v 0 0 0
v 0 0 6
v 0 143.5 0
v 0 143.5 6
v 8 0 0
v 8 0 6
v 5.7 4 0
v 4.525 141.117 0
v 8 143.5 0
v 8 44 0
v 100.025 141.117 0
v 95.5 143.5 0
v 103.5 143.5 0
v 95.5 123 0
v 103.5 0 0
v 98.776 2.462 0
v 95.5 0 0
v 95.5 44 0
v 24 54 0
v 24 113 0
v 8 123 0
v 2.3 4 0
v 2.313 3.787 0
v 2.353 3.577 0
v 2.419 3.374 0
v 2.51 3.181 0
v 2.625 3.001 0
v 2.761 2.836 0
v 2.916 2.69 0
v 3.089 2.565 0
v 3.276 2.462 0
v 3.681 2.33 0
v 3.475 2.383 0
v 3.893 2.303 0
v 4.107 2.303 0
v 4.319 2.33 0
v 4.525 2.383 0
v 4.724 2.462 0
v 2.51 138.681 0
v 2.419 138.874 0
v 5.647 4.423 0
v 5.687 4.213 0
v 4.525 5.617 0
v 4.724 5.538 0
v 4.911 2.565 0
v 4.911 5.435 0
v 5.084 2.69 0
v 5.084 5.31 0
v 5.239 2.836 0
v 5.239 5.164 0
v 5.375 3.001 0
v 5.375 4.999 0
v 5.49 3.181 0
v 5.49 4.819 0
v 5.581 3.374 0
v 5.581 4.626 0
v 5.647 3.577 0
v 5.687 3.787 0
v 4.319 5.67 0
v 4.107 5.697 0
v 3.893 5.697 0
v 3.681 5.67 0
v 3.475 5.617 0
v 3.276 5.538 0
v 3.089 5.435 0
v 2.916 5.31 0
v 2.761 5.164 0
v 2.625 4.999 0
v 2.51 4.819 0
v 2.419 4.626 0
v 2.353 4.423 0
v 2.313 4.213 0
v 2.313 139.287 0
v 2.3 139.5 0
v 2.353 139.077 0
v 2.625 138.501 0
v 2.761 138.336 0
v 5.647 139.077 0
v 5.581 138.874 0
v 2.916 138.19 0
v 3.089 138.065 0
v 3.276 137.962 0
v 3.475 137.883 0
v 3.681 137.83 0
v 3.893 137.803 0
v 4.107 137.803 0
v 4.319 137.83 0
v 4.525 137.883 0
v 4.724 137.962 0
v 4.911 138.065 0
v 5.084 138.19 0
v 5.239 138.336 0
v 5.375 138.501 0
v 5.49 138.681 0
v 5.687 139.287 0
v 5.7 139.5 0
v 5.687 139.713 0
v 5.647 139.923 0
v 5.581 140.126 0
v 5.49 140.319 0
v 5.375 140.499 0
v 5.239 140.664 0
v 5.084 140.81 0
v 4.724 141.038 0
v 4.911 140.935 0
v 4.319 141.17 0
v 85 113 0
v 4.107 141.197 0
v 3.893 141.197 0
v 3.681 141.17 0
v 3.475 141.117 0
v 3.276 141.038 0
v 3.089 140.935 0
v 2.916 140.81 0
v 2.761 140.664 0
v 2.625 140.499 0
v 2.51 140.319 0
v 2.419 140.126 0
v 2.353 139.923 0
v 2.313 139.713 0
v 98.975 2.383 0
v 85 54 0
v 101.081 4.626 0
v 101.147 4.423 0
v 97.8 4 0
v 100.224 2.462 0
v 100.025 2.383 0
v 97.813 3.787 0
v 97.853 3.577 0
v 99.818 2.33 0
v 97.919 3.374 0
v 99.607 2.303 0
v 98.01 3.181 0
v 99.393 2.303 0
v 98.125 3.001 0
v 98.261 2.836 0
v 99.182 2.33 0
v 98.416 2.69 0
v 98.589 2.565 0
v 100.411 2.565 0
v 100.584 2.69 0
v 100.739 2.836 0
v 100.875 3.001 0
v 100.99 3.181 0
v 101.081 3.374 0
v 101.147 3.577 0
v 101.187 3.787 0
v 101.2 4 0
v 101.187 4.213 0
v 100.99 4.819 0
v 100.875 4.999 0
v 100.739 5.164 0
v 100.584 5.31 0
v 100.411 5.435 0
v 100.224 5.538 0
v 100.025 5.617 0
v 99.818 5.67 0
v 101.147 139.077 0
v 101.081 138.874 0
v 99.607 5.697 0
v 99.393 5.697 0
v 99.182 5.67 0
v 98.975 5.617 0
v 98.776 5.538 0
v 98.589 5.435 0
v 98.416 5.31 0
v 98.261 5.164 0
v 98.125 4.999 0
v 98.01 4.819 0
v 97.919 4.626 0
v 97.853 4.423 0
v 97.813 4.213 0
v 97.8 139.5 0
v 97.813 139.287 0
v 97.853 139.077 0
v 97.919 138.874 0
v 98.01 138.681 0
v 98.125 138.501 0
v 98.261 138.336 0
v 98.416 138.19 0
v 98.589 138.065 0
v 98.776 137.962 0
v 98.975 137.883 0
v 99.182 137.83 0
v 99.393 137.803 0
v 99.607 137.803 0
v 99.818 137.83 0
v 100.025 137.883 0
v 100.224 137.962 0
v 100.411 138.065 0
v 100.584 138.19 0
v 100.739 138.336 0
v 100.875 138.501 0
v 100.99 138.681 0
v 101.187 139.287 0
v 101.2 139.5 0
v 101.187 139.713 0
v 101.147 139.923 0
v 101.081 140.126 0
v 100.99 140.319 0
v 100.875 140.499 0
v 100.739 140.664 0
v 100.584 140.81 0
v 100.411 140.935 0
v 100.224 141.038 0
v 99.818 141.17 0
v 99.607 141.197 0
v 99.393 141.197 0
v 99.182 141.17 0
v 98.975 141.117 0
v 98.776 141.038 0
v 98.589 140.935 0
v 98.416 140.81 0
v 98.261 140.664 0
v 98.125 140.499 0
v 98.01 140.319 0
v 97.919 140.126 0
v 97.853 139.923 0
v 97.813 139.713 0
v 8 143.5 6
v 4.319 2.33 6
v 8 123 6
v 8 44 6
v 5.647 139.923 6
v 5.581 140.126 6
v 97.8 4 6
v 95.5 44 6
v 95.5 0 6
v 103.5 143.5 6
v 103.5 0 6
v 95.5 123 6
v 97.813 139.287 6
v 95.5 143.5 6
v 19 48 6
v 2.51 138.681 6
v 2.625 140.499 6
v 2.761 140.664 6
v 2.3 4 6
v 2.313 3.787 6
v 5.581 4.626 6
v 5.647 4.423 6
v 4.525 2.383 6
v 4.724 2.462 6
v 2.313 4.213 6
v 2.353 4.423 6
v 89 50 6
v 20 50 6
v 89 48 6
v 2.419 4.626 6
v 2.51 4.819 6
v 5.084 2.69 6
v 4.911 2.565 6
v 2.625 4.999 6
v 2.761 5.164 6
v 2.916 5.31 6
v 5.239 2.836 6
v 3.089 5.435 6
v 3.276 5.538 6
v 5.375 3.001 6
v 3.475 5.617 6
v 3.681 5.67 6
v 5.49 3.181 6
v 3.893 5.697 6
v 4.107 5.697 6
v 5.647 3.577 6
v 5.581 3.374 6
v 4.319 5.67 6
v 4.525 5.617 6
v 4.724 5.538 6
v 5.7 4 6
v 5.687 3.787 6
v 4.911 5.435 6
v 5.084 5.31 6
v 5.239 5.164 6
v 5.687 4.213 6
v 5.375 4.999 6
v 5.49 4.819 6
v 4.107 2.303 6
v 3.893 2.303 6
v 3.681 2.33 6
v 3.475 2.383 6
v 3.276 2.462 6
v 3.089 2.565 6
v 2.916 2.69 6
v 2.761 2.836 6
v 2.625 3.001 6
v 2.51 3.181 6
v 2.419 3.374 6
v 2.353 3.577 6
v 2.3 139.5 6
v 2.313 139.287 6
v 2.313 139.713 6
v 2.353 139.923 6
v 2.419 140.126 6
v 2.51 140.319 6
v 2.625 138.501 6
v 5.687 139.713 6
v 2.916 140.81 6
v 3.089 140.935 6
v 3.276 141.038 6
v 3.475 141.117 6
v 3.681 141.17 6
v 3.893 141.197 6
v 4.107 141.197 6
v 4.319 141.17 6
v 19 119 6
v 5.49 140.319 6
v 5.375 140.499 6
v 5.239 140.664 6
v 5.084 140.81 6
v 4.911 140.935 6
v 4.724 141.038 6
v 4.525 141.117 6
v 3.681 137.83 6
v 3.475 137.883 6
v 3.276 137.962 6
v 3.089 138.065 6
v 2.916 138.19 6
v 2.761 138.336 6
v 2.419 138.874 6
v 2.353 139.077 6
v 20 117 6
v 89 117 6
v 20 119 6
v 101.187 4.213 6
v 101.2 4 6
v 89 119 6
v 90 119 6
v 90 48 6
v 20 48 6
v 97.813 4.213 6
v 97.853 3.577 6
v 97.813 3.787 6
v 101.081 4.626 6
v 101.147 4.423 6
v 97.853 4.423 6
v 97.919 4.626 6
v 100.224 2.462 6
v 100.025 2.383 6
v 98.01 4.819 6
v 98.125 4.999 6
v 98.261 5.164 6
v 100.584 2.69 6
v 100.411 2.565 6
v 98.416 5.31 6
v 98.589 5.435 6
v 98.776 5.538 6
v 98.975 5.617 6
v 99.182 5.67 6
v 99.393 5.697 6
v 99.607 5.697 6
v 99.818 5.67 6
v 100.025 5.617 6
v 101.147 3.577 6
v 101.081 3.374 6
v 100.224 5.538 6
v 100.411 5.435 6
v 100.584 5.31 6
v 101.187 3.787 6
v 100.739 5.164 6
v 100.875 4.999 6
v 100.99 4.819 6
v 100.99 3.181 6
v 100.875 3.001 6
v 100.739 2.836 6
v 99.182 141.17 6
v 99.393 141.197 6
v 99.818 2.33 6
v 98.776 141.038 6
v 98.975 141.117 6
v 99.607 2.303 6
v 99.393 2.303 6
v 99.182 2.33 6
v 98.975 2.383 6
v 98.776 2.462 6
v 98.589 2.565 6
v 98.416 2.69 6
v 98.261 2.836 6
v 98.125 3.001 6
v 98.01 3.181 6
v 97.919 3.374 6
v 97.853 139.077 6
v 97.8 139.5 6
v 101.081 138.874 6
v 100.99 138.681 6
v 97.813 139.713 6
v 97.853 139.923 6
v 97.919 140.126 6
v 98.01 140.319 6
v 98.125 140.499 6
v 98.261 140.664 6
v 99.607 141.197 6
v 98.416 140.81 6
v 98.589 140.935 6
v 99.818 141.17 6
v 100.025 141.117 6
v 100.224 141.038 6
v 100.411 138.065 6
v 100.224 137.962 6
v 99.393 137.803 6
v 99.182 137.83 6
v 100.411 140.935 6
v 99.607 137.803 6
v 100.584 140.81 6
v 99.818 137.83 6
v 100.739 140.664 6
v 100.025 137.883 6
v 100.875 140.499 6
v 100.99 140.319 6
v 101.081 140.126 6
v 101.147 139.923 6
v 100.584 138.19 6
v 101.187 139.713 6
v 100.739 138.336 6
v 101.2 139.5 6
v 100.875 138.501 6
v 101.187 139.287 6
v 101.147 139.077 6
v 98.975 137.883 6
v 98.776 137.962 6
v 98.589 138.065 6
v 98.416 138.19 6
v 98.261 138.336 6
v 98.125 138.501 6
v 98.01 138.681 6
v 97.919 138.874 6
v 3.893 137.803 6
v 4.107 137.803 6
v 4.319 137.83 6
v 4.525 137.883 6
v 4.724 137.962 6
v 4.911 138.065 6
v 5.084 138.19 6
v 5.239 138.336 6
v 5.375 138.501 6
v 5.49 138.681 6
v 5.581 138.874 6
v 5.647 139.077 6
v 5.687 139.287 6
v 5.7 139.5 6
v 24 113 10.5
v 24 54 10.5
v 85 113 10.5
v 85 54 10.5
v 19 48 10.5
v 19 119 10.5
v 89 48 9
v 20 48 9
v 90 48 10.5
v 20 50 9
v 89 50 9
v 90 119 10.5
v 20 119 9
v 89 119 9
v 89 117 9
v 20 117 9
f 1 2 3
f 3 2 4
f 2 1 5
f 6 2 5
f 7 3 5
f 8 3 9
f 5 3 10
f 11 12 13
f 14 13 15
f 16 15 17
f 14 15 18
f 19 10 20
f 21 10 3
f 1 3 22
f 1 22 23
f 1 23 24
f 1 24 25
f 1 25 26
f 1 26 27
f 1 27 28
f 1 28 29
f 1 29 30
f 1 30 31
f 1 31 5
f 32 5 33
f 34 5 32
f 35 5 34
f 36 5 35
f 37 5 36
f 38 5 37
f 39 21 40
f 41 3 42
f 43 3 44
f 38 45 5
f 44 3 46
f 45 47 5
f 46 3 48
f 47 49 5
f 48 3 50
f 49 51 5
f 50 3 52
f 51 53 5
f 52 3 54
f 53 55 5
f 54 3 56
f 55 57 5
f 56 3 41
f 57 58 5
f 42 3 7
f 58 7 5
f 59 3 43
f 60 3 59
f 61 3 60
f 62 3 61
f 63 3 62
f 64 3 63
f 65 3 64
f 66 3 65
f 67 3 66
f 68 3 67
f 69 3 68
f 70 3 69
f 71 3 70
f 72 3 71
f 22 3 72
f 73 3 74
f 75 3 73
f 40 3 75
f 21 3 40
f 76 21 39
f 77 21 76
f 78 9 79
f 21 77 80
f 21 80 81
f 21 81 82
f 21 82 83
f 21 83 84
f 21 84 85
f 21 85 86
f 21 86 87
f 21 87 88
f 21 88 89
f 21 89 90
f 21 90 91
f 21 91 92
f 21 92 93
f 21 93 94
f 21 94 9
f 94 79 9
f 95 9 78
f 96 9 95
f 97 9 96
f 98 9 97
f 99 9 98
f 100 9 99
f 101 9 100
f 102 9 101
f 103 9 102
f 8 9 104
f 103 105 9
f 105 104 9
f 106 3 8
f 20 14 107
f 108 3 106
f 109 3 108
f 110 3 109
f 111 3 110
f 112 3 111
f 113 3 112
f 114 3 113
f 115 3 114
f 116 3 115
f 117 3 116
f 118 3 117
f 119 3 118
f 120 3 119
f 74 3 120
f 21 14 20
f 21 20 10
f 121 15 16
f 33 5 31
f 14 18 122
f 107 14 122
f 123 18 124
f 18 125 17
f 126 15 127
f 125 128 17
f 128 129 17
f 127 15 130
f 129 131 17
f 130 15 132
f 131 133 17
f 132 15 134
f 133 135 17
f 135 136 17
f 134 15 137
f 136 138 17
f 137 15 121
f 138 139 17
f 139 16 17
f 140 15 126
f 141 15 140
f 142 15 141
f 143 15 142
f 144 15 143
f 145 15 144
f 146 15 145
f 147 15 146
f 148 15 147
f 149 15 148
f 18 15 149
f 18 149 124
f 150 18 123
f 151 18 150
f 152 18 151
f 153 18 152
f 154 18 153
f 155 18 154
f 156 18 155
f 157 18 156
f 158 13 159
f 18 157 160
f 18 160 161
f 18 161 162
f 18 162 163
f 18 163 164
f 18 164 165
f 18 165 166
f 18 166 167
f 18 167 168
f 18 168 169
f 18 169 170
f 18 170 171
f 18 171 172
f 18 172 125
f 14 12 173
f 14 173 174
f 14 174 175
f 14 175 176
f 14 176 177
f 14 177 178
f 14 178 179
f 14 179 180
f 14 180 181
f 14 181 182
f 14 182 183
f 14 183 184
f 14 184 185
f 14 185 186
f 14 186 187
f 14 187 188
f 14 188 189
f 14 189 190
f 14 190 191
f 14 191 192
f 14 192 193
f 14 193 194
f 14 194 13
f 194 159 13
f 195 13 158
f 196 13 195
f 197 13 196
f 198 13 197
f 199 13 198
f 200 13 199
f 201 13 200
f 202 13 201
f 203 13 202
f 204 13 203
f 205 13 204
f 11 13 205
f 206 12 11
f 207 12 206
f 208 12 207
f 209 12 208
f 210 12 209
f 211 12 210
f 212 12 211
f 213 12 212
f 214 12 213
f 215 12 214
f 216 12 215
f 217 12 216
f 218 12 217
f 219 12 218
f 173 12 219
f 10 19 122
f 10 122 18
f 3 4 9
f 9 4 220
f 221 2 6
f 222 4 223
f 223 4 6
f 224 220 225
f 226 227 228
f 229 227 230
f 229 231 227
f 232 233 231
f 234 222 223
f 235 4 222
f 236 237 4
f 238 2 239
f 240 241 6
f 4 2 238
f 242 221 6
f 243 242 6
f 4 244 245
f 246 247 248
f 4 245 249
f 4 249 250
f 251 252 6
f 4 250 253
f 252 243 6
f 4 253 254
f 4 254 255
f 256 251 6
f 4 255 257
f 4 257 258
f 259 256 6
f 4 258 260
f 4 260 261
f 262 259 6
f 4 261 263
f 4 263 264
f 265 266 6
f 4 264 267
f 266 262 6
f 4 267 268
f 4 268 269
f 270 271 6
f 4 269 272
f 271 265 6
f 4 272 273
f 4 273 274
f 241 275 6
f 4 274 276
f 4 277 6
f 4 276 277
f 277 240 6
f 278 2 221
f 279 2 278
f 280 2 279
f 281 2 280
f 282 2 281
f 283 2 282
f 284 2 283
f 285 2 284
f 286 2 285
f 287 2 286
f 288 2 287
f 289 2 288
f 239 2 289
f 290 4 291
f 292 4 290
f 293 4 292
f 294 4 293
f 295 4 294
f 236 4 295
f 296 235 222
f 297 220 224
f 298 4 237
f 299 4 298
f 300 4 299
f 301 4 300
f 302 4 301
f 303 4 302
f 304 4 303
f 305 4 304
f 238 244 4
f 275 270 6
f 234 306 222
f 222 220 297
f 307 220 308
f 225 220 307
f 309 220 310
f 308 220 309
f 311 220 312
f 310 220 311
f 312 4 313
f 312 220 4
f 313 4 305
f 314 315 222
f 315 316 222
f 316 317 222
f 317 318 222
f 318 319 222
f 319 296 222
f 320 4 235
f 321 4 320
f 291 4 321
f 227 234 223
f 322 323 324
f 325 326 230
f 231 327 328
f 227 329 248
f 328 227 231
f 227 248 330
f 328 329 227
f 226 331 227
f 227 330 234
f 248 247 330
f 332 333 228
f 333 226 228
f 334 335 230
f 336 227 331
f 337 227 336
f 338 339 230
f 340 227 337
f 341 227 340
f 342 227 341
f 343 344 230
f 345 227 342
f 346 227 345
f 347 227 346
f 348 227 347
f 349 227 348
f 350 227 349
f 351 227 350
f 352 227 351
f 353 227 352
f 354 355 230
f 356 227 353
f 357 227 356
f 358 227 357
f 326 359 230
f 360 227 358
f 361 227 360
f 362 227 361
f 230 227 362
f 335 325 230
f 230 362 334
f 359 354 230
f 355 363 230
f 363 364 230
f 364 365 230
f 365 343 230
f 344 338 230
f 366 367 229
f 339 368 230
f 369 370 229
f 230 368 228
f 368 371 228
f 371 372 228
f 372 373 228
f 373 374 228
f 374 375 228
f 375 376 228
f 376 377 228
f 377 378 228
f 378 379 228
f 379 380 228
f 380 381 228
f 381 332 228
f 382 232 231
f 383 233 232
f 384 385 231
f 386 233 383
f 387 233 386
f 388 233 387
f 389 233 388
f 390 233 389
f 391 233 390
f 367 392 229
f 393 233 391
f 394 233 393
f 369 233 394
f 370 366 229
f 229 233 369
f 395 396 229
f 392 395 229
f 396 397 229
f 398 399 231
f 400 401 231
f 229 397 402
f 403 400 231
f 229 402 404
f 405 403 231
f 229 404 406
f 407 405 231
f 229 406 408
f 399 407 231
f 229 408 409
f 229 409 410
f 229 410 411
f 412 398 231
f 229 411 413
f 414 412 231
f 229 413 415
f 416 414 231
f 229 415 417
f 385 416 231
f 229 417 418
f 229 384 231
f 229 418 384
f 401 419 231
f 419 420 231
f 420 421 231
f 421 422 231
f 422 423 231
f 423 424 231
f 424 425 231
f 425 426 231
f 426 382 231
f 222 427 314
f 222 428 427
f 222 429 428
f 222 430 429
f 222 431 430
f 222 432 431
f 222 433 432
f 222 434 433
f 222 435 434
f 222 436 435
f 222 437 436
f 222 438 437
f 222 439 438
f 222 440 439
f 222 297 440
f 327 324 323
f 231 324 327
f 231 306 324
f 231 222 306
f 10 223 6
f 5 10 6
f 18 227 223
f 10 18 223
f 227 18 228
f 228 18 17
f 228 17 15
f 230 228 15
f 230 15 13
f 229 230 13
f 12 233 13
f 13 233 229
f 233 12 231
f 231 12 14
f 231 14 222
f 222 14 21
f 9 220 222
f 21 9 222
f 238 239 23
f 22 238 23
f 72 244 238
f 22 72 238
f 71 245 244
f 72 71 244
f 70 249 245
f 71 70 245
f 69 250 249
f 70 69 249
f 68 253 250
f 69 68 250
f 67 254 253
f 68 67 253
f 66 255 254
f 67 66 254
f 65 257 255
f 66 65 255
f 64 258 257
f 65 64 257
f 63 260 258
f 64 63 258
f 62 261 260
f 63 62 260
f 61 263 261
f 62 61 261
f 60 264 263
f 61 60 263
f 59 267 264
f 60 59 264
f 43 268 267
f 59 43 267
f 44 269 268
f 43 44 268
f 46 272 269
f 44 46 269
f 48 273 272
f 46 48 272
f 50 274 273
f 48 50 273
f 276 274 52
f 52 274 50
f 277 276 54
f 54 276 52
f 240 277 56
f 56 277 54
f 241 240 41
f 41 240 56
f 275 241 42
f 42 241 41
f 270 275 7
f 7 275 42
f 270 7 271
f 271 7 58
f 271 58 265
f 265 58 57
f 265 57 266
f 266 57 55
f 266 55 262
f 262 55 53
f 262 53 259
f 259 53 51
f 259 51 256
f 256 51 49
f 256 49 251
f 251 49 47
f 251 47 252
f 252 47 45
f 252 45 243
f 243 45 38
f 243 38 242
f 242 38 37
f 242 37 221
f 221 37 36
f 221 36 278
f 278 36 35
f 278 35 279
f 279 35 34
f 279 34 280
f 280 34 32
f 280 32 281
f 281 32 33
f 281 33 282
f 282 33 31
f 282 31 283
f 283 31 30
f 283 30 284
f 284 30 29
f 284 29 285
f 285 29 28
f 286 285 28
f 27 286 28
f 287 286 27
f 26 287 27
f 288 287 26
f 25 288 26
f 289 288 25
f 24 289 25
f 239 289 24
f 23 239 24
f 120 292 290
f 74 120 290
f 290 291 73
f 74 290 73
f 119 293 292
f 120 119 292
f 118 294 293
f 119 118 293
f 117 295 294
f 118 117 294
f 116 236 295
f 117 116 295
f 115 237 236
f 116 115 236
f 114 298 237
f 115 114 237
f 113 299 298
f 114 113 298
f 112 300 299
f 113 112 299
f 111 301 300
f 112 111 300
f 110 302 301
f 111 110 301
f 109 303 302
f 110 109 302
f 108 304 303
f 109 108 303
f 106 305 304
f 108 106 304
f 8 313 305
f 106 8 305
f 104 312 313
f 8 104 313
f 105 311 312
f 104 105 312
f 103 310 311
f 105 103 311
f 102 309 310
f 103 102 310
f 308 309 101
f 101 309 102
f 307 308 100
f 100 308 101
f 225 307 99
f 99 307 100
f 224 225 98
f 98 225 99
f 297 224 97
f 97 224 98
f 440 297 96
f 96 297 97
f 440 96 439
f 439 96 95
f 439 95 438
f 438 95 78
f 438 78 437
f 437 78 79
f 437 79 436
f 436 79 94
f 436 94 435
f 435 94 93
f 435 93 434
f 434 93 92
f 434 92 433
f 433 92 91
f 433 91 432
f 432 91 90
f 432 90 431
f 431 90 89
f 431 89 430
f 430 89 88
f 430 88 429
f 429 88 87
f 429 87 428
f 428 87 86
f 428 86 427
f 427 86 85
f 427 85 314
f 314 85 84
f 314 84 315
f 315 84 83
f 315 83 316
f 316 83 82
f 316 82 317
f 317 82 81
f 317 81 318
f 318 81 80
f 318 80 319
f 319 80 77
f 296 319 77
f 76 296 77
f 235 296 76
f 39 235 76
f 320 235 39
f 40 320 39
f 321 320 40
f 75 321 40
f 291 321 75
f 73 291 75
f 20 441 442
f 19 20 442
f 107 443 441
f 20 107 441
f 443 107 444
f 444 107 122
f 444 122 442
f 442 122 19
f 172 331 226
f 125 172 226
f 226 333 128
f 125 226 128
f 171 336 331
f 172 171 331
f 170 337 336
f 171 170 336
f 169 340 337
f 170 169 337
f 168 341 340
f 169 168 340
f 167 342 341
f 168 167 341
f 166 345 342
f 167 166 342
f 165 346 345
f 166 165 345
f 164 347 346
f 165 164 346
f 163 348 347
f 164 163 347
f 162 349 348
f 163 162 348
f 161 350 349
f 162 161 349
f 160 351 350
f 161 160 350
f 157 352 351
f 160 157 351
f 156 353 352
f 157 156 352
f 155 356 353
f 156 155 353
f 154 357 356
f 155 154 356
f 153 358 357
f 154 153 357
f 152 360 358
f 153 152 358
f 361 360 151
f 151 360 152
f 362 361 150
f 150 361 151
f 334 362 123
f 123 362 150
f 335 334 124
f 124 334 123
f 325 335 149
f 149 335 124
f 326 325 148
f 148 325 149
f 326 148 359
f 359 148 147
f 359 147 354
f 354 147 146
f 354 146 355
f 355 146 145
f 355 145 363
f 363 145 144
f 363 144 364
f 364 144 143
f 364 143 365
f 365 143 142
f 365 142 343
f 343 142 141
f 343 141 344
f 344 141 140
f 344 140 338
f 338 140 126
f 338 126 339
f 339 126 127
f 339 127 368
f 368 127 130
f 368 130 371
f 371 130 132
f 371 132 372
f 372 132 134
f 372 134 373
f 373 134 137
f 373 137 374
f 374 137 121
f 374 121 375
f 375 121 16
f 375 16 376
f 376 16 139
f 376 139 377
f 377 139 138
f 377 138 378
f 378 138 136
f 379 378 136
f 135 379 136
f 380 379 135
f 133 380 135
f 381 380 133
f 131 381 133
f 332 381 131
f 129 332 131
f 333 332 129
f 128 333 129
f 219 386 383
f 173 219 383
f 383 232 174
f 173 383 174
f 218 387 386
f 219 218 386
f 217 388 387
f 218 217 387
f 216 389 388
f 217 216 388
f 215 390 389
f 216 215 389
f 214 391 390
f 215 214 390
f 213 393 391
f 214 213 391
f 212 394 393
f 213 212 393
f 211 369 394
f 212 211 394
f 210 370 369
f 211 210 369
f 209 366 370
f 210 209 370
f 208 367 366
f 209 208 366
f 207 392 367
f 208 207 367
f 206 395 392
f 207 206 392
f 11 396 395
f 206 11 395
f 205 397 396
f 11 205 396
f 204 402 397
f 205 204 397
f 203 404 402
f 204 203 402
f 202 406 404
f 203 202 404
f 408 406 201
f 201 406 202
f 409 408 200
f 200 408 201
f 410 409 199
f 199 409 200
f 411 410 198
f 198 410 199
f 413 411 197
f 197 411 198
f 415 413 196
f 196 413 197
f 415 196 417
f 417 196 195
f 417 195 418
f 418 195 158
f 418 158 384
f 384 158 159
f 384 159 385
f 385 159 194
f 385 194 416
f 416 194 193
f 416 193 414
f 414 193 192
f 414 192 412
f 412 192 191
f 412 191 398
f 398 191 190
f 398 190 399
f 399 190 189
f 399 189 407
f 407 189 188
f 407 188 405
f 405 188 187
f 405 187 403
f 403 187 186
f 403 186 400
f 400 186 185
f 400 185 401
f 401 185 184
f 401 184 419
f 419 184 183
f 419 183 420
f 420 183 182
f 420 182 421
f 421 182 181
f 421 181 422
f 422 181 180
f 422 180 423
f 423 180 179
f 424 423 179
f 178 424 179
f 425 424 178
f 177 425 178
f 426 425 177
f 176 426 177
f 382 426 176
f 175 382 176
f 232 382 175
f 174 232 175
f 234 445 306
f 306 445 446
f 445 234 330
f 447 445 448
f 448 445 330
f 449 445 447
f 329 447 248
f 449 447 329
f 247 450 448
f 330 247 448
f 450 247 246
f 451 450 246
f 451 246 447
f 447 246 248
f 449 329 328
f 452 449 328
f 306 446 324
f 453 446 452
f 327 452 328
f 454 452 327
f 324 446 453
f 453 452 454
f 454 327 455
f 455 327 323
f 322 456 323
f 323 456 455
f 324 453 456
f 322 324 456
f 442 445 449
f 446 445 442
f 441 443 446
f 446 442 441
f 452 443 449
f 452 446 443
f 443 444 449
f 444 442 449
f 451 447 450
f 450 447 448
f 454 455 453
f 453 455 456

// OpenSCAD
$fn = 50;

xl = 95.5;
yl = 135.5;
d = 6;
r = 1.7;

br = 4;
lk = 67;
bk = 69;
//bk =10;

rk = 2;

dk1= 3;
dk2= 1.5;

xk = 20;
yk = 50;

difference(){
	cube([xl+2*br,yl+2*br,d]);
	translate([br,br,-1]) cylinder(r=r, h=d+2);
	translate([xl+br,br,-1]) cylinder(r=r, h=d+2);
	translate([br,yl+br,-1]) cylinder(r=r, h=d+2);
	translate([xl+br,yl+br,-1]) cylinder(r=r, h=d+2);
	translate([2*br,-1,-1]) cube([xl-2*br,yk+1-br-rk,d+2*d]);
	translate([2*br,yk+bk+br,-1]) cube([xl-2*br,yk+1-br,d+2*d]);
	translate([xk+br,yk+br,-1]) cube([bk-2*br,lk-2*br,d+2]);

}
difference(){
	translate([xk,yk,d]){
		translate([-1,-rk,0]) cube([1,lk+2*rk,dk1+dk2]);
		translate([bk,-rk,0]) cube([1,lk+2*rk,dk1+dk2]);
		cube([bk,lk,dk1]);
		translate([0,-rk,dk1]) cube([bk,lk+2*rk,dk2]);
	}
	translate([xk+br,yk+br,-1]) cube([bk-2*br,lk-2*br,d+dk1+dk2+2]);
}
